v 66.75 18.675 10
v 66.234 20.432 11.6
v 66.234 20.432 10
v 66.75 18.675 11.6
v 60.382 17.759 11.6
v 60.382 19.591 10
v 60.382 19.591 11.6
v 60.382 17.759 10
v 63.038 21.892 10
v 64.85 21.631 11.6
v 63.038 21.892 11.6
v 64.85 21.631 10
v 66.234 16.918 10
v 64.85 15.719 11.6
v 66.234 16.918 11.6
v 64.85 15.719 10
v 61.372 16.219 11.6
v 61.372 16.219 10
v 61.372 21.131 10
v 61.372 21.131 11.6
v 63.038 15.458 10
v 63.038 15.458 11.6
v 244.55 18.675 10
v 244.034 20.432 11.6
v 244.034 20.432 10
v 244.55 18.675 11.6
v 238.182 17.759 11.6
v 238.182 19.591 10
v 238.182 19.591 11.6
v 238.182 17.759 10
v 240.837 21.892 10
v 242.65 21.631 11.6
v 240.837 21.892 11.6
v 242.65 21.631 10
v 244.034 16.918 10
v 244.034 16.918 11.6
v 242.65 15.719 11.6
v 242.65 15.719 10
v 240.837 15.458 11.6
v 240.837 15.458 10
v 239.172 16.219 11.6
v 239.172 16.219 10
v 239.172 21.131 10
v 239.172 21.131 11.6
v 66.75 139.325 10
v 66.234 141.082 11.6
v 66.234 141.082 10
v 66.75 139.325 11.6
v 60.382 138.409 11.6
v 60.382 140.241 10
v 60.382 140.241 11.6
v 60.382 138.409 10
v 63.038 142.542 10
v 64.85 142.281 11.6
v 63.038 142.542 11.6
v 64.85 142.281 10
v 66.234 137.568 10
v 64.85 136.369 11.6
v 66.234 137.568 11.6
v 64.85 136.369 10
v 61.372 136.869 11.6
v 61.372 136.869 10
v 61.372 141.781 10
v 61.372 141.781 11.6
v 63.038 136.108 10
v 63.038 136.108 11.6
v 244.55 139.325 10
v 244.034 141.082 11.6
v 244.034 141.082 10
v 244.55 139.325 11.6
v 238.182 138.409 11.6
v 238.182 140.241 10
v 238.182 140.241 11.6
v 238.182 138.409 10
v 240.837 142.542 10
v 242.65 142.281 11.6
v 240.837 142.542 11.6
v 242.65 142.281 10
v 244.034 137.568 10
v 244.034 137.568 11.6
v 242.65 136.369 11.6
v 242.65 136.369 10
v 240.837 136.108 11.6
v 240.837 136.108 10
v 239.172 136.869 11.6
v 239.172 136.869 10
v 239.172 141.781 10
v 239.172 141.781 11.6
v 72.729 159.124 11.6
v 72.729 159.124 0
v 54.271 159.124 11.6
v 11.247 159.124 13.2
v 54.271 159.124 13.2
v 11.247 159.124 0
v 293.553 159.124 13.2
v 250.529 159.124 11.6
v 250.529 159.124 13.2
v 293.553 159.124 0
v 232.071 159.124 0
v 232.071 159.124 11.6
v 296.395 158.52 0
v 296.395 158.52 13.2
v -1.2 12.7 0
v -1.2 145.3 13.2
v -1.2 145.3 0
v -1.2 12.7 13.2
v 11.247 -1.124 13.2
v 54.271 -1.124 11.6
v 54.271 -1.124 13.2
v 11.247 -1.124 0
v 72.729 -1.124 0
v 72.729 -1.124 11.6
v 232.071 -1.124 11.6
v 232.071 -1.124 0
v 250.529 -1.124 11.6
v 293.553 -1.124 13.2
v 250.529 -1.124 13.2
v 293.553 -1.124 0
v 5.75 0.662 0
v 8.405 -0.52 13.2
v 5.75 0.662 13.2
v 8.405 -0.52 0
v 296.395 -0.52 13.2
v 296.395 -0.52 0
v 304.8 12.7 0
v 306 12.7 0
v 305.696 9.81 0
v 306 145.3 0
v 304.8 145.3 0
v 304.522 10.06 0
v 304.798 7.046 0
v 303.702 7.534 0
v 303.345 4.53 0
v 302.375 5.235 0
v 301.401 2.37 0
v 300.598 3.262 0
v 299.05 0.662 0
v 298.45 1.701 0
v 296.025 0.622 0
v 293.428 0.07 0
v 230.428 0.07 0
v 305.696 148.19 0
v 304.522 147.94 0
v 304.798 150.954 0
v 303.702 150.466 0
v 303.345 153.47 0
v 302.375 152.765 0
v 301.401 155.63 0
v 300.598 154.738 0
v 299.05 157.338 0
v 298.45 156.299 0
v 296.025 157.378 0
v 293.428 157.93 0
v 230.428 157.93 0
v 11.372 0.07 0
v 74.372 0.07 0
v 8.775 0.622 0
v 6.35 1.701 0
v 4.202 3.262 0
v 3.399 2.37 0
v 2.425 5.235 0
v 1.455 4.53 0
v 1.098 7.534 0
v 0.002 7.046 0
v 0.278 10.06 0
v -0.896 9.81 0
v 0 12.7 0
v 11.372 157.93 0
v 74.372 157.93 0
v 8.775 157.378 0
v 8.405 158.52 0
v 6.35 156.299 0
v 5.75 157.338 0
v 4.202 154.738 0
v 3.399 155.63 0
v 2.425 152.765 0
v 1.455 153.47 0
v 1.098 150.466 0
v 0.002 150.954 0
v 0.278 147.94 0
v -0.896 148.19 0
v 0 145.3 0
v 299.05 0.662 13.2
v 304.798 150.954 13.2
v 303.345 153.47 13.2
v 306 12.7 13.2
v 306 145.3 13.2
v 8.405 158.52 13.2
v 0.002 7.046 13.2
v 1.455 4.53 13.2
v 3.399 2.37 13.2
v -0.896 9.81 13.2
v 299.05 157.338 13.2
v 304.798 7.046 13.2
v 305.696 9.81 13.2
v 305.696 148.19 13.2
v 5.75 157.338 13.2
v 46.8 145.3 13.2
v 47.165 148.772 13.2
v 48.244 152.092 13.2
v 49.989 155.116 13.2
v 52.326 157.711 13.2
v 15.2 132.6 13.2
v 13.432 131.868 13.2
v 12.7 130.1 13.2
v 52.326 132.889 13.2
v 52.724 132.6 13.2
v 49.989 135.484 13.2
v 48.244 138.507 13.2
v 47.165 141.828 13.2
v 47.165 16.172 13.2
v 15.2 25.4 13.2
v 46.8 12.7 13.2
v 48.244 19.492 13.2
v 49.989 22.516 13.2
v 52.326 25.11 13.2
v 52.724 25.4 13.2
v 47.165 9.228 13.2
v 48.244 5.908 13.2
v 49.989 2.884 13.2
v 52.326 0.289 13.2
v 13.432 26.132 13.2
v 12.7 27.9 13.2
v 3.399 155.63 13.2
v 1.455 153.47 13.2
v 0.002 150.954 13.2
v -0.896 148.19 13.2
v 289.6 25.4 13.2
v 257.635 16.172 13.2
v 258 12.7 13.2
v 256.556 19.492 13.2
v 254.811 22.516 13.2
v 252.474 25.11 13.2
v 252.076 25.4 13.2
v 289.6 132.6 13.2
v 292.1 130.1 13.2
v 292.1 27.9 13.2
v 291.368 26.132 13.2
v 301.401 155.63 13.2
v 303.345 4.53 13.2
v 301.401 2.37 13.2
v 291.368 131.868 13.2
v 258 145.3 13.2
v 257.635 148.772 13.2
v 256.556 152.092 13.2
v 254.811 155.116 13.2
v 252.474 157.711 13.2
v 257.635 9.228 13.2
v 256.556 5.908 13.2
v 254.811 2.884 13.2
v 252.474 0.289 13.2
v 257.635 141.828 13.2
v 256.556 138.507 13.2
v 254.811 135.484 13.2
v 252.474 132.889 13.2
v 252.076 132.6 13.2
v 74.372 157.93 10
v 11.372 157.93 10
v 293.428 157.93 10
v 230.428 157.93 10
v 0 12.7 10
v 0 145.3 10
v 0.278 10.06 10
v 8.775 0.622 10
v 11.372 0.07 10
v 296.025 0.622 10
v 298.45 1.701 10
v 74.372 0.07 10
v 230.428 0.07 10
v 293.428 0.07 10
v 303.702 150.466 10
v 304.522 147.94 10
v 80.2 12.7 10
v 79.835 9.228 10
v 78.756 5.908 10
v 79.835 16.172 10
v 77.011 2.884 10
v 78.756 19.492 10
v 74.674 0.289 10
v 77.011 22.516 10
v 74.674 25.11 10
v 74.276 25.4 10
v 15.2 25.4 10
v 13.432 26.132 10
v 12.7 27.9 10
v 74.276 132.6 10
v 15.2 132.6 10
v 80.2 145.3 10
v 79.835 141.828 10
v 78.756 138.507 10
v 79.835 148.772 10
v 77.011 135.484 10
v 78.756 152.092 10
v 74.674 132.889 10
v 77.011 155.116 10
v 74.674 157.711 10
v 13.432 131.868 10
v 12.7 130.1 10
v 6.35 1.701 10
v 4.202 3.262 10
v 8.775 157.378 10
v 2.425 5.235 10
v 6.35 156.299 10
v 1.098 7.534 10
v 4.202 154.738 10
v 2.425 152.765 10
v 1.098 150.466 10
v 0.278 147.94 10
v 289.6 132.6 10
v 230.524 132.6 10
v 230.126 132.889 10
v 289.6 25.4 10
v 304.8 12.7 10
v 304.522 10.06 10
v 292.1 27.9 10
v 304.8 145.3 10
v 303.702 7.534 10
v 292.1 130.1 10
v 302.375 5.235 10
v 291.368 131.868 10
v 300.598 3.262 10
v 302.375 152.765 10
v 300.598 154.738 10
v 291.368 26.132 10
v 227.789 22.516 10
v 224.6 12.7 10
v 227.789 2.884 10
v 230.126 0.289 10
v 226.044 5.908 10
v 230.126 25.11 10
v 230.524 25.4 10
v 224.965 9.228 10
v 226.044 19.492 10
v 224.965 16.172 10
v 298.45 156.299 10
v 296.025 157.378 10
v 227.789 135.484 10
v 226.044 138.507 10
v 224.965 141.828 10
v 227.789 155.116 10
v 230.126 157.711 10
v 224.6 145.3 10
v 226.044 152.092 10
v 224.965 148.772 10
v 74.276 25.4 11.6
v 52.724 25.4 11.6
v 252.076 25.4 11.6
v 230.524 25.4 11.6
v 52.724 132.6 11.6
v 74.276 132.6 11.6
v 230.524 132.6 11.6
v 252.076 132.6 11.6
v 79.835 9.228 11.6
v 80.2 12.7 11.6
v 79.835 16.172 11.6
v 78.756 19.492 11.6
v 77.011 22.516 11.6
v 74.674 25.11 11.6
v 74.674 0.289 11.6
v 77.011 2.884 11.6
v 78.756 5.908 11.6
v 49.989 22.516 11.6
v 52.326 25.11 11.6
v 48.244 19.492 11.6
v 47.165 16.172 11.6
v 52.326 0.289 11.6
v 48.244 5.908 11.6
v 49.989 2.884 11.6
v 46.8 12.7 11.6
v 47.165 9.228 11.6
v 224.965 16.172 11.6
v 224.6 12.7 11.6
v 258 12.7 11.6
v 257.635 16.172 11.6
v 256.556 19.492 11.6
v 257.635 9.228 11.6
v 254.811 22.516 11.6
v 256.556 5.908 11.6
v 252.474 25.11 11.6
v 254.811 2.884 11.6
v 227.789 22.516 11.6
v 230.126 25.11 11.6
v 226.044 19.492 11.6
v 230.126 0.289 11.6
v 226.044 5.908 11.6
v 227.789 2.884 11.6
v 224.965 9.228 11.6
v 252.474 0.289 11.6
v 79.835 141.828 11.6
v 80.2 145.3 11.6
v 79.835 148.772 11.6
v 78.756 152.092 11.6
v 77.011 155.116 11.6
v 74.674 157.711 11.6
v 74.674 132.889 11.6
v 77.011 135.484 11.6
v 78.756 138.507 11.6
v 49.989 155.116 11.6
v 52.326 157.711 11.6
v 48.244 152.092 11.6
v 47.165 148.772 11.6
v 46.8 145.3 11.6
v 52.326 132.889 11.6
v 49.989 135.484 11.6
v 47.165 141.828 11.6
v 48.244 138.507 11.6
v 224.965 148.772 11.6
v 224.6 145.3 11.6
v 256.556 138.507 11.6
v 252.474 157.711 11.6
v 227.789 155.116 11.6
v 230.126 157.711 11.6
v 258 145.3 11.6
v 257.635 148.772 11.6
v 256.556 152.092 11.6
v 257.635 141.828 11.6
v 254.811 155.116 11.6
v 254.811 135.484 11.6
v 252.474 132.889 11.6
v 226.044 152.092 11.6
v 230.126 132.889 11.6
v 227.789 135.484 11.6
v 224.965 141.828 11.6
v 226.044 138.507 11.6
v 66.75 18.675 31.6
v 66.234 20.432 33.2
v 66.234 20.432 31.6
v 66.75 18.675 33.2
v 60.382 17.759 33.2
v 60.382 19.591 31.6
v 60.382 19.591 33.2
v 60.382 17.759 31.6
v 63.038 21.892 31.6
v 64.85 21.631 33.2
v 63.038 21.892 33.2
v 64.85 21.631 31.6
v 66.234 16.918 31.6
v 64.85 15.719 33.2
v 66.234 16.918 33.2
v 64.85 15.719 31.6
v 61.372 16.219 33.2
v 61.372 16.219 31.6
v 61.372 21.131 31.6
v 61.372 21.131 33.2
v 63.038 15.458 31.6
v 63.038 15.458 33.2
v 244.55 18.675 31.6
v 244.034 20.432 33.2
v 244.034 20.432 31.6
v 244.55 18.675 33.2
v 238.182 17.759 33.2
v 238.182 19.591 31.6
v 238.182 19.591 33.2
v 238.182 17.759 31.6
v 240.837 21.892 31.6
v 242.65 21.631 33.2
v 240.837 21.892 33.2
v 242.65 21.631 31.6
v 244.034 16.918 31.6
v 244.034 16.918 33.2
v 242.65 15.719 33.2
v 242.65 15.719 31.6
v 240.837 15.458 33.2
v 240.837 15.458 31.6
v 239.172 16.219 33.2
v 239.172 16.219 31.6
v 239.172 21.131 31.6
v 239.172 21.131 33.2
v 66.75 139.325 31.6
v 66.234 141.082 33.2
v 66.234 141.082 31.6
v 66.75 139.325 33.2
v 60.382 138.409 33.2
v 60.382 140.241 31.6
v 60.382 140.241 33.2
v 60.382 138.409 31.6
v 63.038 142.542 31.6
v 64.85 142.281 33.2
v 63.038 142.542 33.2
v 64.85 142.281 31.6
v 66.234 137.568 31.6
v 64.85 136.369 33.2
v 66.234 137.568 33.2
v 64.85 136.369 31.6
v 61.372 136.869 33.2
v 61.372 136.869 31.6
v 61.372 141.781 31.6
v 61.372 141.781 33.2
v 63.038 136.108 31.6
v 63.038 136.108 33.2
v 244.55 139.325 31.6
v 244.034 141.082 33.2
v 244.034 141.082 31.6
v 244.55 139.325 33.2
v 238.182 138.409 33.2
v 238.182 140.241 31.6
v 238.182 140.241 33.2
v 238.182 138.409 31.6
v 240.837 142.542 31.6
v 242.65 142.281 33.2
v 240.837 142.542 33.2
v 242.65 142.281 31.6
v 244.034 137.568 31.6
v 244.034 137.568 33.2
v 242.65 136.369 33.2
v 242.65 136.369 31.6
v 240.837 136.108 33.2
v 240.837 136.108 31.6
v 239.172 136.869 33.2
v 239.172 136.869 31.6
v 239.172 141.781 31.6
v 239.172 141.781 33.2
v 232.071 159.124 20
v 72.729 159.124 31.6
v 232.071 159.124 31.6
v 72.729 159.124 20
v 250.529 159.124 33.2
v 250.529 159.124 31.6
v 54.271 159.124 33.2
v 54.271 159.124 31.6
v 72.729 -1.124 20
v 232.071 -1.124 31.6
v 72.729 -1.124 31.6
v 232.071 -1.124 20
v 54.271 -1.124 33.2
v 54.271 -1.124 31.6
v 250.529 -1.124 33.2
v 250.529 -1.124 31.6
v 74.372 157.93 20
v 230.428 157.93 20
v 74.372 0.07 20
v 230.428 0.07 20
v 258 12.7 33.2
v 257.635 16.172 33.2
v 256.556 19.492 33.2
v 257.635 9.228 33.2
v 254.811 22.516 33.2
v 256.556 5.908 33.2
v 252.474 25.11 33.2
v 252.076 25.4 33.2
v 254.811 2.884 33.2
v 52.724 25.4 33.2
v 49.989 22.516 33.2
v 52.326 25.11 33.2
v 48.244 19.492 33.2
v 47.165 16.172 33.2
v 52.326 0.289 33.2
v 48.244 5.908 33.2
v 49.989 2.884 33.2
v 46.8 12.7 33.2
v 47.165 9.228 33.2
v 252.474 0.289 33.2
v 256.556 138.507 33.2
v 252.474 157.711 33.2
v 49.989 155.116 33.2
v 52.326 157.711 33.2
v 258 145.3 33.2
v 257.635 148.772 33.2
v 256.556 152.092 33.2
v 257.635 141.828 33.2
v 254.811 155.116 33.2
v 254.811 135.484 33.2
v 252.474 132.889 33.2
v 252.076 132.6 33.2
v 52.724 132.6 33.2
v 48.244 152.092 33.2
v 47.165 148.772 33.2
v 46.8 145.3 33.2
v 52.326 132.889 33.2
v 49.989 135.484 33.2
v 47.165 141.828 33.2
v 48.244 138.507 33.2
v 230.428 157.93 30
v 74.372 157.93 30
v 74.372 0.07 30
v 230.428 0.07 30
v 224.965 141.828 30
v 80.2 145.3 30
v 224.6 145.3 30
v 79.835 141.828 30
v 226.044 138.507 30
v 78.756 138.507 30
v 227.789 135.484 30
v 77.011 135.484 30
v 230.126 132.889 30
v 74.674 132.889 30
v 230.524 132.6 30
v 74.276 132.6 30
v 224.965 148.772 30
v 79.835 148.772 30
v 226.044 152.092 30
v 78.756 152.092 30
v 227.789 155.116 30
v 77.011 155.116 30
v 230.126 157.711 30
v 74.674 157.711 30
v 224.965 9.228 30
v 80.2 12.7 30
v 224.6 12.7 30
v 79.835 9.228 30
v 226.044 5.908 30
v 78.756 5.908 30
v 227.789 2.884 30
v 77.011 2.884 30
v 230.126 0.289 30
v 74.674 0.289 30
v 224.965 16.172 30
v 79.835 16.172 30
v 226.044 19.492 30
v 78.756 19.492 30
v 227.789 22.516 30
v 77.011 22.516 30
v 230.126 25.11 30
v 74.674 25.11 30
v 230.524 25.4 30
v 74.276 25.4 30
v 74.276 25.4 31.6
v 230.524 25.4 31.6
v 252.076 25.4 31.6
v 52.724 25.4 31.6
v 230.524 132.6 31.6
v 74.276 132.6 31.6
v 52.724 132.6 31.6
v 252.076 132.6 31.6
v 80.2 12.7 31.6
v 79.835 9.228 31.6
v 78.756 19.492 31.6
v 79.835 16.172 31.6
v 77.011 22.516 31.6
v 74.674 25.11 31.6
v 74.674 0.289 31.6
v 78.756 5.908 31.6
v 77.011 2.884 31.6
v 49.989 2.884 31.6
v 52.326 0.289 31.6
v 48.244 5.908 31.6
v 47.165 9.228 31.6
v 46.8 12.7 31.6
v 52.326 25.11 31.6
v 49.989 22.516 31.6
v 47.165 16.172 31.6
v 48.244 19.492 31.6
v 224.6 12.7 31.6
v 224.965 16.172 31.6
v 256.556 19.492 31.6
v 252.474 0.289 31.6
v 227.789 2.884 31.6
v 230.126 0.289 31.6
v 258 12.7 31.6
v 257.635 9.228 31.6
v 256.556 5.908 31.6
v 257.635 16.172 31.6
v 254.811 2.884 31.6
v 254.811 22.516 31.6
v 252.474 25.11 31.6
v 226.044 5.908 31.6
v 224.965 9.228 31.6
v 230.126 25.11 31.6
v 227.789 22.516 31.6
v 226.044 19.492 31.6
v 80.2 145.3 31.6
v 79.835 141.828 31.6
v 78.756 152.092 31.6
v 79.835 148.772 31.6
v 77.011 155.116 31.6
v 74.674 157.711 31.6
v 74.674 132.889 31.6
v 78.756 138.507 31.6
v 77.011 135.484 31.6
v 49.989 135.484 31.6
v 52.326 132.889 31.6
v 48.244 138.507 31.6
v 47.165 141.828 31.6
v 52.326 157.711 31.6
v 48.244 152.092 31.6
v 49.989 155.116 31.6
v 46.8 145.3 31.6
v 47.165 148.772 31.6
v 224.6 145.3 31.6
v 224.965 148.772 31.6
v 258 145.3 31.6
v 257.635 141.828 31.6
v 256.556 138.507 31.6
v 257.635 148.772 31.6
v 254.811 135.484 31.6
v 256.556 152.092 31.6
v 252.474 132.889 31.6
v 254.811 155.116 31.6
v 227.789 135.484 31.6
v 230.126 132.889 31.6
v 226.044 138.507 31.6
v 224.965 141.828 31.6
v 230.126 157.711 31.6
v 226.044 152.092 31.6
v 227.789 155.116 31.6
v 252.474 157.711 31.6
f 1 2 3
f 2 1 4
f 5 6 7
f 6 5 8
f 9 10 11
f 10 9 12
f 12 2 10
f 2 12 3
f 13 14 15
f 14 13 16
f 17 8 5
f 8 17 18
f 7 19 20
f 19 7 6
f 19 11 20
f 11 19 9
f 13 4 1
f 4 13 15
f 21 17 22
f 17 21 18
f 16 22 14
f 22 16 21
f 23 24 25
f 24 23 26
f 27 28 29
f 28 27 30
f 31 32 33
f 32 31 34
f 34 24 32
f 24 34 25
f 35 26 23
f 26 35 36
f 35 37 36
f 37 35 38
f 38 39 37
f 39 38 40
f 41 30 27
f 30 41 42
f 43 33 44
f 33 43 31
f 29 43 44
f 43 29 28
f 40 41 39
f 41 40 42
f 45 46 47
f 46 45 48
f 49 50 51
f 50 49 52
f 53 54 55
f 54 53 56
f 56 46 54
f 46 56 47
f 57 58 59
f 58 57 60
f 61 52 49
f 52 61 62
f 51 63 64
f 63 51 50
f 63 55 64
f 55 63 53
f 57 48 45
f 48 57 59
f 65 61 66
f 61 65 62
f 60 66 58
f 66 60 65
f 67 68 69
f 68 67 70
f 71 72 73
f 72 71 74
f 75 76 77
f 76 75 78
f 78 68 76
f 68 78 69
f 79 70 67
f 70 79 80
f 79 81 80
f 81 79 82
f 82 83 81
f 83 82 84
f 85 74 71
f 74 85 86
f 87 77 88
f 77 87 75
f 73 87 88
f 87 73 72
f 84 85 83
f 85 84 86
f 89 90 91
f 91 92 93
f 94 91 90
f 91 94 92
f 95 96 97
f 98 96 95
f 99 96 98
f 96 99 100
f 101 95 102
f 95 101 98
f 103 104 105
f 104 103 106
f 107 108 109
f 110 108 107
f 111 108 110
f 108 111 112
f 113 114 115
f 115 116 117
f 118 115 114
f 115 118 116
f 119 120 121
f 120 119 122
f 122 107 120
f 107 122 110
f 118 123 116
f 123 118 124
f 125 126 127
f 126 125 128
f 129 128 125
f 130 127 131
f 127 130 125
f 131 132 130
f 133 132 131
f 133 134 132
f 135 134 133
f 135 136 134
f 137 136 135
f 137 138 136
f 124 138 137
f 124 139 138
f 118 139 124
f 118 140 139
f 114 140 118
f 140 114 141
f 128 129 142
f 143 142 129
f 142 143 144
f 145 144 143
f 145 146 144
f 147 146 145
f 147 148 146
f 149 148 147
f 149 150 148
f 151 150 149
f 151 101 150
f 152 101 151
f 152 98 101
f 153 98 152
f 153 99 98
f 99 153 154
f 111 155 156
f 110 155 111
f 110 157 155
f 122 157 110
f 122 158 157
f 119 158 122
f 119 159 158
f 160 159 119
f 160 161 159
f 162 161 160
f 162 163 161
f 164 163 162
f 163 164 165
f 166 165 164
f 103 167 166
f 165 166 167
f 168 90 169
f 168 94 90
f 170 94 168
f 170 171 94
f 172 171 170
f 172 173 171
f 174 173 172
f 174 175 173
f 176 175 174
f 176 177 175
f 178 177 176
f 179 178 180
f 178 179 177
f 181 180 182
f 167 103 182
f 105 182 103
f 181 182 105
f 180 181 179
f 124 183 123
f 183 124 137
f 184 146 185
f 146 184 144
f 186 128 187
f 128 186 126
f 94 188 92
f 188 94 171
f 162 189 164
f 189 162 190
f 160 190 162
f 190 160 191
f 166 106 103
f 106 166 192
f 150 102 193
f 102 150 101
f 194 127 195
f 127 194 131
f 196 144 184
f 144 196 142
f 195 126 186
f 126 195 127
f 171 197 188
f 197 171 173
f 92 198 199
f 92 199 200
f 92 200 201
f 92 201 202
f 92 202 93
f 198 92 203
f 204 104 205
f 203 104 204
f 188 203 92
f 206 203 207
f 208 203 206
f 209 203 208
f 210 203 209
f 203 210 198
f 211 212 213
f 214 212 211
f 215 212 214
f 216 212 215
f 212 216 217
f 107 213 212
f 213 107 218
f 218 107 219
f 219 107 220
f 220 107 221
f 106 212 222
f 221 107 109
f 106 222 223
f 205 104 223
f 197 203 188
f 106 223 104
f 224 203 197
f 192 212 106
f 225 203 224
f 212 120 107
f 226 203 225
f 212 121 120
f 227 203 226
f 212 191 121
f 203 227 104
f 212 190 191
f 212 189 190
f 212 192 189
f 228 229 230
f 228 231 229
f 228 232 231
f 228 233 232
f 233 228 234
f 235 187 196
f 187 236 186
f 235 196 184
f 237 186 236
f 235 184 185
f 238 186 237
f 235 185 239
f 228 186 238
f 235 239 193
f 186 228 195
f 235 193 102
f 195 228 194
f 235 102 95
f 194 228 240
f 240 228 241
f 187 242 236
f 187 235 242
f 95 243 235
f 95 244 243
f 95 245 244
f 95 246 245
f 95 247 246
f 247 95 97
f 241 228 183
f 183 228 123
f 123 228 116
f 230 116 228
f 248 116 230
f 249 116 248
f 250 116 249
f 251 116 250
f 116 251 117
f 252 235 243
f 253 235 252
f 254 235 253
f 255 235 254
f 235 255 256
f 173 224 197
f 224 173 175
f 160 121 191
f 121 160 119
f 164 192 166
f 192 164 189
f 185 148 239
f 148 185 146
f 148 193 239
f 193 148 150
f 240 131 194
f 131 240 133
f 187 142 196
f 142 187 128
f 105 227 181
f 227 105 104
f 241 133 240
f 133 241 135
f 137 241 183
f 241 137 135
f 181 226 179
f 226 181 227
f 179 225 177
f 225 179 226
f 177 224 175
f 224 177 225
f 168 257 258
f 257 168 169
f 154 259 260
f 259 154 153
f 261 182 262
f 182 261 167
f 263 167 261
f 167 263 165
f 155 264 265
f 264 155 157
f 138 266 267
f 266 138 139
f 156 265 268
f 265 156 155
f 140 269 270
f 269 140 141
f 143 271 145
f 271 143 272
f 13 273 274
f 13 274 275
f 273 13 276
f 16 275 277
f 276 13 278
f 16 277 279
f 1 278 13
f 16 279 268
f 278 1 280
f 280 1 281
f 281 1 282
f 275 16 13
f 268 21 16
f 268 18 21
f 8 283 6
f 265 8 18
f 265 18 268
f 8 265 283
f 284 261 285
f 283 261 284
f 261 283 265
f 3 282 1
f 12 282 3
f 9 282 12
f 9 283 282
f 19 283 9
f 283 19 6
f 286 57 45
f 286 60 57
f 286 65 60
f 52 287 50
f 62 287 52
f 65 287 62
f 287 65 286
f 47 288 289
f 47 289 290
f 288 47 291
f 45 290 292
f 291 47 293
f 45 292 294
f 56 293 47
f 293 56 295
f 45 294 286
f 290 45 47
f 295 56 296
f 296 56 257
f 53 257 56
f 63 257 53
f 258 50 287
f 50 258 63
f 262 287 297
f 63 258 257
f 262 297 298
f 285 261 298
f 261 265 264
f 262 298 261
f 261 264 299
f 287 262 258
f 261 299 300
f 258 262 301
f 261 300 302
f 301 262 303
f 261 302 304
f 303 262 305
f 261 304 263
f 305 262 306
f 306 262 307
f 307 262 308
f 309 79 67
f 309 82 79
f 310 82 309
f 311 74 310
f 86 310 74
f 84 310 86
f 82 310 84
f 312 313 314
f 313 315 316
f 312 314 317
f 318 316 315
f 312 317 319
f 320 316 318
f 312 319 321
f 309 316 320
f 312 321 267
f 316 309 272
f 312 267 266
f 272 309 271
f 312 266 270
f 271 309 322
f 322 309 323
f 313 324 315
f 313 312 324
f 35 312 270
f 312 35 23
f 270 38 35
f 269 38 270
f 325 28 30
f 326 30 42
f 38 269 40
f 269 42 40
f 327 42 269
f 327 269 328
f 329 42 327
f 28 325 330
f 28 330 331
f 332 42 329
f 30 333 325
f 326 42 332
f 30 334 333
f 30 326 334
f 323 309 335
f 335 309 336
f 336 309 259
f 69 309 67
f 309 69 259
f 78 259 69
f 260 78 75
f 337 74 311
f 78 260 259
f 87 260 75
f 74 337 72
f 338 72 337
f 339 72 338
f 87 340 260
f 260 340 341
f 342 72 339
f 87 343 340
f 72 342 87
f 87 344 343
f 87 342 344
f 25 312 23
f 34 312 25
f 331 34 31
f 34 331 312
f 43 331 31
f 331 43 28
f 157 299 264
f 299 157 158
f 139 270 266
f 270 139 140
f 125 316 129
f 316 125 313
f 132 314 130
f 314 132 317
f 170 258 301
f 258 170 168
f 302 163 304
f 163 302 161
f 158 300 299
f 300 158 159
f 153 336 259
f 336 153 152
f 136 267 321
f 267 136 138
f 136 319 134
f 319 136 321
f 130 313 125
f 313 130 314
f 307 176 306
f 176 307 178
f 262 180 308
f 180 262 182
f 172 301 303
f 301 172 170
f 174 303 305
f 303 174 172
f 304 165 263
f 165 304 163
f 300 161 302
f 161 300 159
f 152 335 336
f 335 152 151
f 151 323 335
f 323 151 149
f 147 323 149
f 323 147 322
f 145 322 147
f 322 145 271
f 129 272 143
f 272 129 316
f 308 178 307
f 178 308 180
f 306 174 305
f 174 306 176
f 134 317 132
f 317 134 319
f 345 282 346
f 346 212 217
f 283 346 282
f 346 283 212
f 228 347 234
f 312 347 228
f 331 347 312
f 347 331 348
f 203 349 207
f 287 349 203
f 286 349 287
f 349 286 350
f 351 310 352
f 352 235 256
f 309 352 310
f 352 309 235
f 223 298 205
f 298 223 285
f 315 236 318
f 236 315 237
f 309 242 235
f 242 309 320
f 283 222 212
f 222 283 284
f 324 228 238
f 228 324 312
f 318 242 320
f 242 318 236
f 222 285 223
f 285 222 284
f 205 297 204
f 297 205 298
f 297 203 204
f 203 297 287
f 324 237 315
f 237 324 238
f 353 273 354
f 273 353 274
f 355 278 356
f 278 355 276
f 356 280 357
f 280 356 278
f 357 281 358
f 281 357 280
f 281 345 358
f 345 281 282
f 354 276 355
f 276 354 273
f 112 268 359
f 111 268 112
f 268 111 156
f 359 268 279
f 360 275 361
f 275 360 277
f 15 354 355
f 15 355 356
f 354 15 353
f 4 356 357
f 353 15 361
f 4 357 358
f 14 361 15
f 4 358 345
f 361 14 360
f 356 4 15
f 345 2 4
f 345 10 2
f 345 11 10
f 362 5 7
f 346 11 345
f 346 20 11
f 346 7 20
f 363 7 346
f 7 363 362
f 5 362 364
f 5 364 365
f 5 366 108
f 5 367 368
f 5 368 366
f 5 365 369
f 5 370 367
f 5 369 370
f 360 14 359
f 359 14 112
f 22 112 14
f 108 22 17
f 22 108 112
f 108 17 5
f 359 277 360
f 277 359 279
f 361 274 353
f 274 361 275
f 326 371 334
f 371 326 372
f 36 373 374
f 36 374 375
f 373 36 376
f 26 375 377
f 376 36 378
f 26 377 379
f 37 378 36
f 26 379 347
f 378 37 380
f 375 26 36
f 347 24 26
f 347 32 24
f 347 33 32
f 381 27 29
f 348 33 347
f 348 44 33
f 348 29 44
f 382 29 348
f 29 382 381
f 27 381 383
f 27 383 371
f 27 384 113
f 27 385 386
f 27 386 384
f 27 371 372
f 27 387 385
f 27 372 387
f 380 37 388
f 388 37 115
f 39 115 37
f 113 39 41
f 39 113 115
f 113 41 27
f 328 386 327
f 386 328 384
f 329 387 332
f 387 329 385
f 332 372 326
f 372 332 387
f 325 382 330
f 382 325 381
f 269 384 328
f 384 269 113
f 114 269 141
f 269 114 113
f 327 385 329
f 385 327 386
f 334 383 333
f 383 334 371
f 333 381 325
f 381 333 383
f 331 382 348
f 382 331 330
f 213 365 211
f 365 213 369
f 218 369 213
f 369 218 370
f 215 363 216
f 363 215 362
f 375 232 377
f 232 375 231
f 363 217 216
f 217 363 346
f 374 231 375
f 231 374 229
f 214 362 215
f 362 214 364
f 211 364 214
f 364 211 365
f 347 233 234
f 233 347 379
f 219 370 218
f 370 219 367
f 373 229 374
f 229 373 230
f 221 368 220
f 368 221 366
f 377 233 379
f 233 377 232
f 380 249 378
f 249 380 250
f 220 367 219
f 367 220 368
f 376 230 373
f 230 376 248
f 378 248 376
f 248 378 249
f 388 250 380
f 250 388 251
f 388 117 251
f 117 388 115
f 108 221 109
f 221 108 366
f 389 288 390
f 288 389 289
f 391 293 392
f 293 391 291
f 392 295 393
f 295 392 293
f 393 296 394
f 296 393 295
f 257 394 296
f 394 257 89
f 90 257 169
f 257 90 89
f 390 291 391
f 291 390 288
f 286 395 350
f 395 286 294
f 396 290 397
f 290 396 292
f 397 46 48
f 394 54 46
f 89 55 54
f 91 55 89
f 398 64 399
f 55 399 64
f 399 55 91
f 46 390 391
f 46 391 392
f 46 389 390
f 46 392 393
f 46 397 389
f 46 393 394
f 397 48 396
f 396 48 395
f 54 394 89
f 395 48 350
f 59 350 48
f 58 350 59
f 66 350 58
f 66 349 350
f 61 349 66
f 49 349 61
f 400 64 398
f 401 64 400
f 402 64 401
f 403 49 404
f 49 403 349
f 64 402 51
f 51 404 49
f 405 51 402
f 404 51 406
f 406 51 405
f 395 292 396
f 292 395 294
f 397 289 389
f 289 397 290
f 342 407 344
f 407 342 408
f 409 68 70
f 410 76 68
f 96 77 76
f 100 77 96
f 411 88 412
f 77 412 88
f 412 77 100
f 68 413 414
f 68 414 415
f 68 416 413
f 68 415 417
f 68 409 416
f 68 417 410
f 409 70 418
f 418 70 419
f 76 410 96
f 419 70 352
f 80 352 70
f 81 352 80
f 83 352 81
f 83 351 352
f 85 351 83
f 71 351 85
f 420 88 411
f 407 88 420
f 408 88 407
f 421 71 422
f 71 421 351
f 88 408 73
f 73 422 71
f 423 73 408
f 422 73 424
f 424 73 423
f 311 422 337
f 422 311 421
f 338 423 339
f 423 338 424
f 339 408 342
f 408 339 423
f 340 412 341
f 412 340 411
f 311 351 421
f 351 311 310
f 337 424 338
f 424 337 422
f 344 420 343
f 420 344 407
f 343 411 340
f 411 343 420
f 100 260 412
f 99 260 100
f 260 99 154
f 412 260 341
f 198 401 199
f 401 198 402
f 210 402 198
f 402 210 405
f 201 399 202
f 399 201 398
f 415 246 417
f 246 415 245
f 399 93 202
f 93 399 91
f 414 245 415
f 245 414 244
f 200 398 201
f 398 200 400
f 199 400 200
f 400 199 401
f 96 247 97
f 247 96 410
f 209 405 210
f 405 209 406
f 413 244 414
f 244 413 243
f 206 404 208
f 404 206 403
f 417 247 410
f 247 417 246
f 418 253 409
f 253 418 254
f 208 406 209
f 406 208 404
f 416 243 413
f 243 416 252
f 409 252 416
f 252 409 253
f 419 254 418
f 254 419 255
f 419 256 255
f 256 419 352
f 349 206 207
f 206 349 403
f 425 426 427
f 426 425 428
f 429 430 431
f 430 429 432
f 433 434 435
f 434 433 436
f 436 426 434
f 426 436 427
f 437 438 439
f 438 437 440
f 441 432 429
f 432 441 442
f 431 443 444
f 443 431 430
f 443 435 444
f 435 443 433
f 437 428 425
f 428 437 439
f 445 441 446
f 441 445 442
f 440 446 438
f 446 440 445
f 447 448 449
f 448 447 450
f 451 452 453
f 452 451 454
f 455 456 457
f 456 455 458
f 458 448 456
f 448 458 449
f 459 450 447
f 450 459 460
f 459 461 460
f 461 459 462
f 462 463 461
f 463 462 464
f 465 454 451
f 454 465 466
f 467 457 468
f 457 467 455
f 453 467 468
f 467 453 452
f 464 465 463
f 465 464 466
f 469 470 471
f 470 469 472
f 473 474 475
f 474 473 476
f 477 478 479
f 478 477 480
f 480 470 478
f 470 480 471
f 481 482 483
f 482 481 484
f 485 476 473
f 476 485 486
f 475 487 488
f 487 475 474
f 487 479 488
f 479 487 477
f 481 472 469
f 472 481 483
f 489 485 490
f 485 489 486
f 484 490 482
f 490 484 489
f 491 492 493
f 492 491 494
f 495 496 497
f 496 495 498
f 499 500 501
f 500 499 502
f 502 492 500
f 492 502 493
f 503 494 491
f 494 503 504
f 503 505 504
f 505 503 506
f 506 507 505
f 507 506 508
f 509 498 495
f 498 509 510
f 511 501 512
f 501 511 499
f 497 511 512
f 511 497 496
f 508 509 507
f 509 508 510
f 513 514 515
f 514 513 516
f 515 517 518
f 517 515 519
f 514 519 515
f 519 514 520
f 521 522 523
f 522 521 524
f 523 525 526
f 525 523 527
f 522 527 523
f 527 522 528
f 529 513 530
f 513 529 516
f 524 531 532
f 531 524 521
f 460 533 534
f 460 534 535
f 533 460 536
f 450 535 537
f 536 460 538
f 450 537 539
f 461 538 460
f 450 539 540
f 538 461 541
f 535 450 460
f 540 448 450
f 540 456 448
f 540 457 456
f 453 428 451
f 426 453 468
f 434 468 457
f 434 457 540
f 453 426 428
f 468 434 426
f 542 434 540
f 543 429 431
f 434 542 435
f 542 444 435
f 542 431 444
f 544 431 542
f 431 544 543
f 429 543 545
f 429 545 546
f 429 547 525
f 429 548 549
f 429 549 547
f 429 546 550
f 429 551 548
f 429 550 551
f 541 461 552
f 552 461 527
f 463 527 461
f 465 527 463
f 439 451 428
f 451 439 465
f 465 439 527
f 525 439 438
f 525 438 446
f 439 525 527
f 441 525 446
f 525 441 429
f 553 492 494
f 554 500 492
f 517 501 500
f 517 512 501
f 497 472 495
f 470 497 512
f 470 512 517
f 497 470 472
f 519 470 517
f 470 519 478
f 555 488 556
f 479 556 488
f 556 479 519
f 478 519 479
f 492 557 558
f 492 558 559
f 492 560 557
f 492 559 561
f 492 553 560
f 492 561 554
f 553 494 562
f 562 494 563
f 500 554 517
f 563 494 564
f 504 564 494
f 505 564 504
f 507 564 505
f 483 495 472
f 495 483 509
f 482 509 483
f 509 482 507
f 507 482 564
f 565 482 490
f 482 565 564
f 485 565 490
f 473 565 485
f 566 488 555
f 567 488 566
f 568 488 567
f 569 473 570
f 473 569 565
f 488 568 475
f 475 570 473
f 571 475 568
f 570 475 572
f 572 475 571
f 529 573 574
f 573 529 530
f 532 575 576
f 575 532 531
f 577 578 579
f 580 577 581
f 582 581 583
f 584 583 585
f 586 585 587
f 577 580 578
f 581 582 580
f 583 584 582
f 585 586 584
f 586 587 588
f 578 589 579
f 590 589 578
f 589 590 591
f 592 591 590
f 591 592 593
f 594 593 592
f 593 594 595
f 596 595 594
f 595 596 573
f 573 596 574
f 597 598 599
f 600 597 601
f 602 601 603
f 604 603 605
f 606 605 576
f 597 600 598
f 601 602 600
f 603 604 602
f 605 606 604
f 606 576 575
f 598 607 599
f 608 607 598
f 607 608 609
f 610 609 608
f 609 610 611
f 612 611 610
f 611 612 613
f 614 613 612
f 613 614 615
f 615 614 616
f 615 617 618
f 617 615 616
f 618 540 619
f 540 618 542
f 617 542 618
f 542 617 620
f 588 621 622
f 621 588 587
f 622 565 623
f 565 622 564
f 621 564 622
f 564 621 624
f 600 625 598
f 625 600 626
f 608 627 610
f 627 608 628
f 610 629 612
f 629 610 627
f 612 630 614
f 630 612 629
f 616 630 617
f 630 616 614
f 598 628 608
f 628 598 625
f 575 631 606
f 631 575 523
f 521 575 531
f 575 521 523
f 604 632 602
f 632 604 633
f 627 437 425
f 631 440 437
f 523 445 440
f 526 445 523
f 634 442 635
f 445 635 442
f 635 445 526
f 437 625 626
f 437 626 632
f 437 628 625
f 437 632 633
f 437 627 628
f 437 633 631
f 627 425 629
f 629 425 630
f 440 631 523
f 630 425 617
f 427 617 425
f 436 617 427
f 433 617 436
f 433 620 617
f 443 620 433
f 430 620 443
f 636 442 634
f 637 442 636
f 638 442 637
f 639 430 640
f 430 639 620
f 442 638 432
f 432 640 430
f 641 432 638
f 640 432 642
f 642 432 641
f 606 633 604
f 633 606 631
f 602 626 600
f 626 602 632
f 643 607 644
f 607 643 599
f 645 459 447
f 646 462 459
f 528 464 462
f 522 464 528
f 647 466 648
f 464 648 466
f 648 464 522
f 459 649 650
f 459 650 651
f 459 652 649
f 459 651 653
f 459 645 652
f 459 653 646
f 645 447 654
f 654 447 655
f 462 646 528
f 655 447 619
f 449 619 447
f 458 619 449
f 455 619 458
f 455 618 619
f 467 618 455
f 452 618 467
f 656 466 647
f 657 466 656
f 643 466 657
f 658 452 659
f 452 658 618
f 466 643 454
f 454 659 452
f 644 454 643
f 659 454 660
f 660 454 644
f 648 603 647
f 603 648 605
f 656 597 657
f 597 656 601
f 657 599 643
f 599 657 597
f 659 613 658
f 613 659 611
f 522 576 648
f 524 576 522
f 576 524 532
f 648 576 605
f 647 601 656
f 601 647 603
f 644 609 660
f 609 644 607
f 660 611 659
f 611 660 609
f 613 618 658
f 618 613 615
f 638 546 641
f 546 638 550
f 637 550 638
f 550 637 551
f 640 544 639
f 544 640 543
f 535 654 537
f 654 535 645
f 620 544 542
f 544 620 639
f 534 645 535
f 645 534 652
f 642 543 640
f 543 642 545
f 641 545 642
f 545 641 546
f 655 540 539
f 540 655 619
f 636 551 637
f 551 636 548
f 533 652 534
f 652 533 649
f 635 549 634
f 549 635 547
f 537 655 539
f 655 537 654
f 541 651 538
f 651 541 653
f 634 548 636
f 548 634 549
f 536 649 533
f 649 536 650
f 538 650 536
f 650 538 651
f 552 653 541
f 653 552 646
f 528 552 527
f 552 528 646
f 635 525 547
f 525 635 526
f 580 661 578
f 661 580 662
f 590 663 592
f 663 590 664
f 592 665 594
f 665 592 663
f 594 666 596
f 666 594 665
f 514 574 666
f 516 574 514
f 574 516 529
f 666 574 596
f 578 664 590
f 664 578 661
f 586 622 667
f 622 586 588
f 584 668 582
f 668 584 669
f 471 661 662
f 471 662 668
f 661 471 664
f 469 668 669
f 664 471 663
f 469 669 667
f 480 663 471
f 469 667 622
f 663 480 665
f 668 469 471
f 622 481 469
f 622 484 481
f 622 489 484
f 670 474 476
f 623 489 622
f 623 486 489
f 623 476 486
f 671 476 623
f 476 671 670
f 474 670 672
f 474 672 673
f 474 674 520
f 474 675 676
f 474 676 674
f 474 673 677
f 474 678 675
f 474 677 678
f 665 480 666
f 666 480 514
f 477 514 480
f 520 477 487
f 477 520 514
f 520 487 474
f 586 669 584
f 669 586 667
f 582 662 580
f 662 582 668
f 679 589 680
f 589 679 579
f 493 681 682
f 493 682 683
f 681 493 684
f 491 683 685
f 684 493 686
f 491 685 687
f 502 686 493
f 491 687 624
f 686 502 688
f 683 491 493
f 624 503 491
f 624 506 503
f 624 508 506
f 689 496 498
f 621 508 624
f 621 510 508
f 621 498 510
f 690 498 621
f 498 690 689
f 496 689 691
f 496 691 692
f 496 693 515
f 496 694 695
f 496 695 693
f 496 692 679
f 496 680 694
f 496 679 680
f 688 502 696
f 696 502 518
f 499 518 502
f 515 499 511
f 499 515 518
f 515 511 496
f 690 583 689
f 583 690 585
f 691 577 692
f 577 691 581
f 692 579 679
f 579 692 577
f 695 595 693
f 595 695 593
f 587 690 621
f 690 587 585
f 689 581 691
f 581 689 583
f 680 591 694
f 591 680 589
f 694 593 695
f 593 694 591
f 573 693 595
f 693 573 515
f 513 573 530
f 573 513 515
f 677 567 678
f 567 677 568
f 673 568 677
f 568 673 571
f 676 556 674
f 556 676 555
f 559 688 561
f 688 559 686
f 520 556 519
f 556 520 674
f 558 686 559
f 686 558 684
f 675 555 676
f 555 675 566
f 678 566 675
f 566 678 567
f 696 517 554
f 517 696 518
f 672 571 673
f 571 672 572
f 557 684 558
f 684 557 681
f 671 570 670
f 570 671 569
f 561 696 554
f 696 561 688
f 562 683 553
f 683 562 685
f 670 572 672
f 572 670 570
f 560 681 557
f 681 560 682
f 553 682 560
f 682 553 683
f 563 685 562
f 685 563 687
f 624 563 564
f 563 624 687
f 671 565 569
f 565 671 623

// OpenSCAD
filament=1.2;
layers=0.4;
in=25.4;
plate_y=6*in;
plate_y=158;
plate_x=12*in;
plate_r=1/2*in;
plate_d=plate_r*2;

screw_cover=layers*4;
screw_grip=layers*4;
below_plate=10;

screw_gap_x=7*in;
screw_gap_y=4.75*in;
screw=6.5;
screw_head=screw;
screw_head_h=0;


hole_x=plate_x-1*in;
hole_y=plate_y-2*in;
hole_d=5;
hole_r=hole_d/2;

total_h=screw_cover+screw_grip+below_plate;

outer_wall=filament;
pad=0.1;
padd=pad*2;

joint_buffer=4;
joint=(plate_y-hole_y)/2+joint_buffer*2;
module positive() {
    difference() {
        translate([plate_r,plate_r,0])
        minkowski() {
            cube([plate_x-plate_d,plate_y-plate_d,total_h/2]);
            cylinder(d=plate_d+outer_wall*2,h=total_h/2);
        }
        translate([plate_r,plate_r,0])
        translate([0,0,-padd])
        minkowski() {
            cube([plate_x-plate_d,plate_y-plate_d,below_plate/2+pad]);
            cylinder(d=plate_d,h=below_plate/2+pad);
        }
        center_hole();
        screws();
    }
}

module center_hole() {
    translate([-hole_x/2+plate_x/2,-hole_y/2+plate_y/2,-pad])
    translate([hole_r,hole_r,0])
    minkowski() {
        cube([hole_x-hole_d,hole_y-hole_d,total_h/2+pad]);
        cylinder(d=hole_d,h=total_h/2+pad);
    }
}
module screws() {
    translate([0,-screw_gap_y/2+plate_y/2,0]) {
        screws_x();
        translate([0,screw_gap_y,0])
        screws_x();
    }
}
module screws_x() {
    translate([-screw_gap_x/2+plate_x/2,0,-pad]) {
        screw();
        translate([screw_gap_x,0,0])
        screw();
    }
}
module screw() {
    cylinder(d=screw,h=total_h+padd);
    translate([0,0,total_h-screw_head_h])
    cylinder(d1=screw-padd,d2=screw_head+padd,h=screw_head_h+padd);
}

module joint_x() {
    translate([-screw_gap_x/2+plate_x/2,0,0])
    hull() {
        joint();
        translate([screw_gap_x,0,0])
        joint();
    }
}
module joint() {
    translate([0,0,-pad])
    cylinder(d=joint,h=total_h+padd);
}

module side_grip() {
    translate([0,0,-padd])
    cylinder(d=joint,h=screw_grip+below_plate+padd);
}

module side_grip_x() {
    translate([-screw_gap_x/2+plate_x/2,0,0]) {
        hull() {
            side_grip();
            translate([-pad,0,0])
            side_grip();
        }
        translate([screw_gap_x,0,0])
        hull() {
            side_grip();
            translate([pad,0,0])
            side_grip();
        }
    }
}

module bar_negative() {
        difference() {
            joint_x();
            side_grip_x();
        }
}

module bars_negative() {
    translate([0,joint/2-joint_buffer,0])
    bar_negative();
    translate([0,plate_y-joint/2+joint_buffer,0])
    bar_negative();
}

module bars() {
    intersection() {
        positive();
        bars_negative();
    }
}

module sides() {
    difference() {
        positive();
        bars_negative();
    }
}
sides();
translate([0,0,20])
bars();
